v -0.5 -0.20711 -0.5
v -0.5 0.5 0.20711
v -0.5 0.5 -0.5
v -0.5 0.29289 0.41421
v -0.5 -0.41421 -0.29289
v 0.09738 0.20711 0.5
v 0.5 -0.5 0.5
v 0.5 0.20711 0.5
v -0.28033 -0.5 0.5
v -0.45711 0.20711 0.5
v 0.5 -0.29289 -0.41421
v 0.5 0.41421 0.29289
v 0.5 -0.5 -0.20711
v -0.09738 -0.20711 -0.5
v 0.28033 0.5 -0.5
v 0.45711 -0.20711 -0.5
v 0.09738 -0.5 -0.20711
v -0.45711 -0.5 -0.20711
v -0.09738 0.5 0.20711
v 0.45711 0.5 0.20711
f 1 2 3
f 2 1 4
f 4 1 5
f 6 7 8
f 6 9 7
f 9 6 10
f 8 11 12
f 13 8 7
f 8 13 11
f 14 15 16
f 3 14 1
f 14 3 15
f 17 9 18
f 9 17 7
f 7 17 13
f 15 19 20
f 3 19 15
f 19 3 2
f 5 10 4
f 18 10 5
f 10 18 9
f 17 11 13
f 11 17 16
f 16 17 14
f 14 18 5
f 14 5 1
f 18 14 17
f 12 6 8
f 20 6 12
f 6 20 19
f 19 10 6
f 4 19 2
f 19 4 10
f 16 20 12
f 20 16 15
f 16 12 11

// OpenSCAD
intersection(){
translate([-.5,-.5,-.5])
cube(1,1,1);
rotate(19.4712206344907,[0,1,1])
rotate(45,[1,0,0])
translate([-.5,-.5,-5])
cube([1.00,1.00,10],center=[0,0,0]);}
